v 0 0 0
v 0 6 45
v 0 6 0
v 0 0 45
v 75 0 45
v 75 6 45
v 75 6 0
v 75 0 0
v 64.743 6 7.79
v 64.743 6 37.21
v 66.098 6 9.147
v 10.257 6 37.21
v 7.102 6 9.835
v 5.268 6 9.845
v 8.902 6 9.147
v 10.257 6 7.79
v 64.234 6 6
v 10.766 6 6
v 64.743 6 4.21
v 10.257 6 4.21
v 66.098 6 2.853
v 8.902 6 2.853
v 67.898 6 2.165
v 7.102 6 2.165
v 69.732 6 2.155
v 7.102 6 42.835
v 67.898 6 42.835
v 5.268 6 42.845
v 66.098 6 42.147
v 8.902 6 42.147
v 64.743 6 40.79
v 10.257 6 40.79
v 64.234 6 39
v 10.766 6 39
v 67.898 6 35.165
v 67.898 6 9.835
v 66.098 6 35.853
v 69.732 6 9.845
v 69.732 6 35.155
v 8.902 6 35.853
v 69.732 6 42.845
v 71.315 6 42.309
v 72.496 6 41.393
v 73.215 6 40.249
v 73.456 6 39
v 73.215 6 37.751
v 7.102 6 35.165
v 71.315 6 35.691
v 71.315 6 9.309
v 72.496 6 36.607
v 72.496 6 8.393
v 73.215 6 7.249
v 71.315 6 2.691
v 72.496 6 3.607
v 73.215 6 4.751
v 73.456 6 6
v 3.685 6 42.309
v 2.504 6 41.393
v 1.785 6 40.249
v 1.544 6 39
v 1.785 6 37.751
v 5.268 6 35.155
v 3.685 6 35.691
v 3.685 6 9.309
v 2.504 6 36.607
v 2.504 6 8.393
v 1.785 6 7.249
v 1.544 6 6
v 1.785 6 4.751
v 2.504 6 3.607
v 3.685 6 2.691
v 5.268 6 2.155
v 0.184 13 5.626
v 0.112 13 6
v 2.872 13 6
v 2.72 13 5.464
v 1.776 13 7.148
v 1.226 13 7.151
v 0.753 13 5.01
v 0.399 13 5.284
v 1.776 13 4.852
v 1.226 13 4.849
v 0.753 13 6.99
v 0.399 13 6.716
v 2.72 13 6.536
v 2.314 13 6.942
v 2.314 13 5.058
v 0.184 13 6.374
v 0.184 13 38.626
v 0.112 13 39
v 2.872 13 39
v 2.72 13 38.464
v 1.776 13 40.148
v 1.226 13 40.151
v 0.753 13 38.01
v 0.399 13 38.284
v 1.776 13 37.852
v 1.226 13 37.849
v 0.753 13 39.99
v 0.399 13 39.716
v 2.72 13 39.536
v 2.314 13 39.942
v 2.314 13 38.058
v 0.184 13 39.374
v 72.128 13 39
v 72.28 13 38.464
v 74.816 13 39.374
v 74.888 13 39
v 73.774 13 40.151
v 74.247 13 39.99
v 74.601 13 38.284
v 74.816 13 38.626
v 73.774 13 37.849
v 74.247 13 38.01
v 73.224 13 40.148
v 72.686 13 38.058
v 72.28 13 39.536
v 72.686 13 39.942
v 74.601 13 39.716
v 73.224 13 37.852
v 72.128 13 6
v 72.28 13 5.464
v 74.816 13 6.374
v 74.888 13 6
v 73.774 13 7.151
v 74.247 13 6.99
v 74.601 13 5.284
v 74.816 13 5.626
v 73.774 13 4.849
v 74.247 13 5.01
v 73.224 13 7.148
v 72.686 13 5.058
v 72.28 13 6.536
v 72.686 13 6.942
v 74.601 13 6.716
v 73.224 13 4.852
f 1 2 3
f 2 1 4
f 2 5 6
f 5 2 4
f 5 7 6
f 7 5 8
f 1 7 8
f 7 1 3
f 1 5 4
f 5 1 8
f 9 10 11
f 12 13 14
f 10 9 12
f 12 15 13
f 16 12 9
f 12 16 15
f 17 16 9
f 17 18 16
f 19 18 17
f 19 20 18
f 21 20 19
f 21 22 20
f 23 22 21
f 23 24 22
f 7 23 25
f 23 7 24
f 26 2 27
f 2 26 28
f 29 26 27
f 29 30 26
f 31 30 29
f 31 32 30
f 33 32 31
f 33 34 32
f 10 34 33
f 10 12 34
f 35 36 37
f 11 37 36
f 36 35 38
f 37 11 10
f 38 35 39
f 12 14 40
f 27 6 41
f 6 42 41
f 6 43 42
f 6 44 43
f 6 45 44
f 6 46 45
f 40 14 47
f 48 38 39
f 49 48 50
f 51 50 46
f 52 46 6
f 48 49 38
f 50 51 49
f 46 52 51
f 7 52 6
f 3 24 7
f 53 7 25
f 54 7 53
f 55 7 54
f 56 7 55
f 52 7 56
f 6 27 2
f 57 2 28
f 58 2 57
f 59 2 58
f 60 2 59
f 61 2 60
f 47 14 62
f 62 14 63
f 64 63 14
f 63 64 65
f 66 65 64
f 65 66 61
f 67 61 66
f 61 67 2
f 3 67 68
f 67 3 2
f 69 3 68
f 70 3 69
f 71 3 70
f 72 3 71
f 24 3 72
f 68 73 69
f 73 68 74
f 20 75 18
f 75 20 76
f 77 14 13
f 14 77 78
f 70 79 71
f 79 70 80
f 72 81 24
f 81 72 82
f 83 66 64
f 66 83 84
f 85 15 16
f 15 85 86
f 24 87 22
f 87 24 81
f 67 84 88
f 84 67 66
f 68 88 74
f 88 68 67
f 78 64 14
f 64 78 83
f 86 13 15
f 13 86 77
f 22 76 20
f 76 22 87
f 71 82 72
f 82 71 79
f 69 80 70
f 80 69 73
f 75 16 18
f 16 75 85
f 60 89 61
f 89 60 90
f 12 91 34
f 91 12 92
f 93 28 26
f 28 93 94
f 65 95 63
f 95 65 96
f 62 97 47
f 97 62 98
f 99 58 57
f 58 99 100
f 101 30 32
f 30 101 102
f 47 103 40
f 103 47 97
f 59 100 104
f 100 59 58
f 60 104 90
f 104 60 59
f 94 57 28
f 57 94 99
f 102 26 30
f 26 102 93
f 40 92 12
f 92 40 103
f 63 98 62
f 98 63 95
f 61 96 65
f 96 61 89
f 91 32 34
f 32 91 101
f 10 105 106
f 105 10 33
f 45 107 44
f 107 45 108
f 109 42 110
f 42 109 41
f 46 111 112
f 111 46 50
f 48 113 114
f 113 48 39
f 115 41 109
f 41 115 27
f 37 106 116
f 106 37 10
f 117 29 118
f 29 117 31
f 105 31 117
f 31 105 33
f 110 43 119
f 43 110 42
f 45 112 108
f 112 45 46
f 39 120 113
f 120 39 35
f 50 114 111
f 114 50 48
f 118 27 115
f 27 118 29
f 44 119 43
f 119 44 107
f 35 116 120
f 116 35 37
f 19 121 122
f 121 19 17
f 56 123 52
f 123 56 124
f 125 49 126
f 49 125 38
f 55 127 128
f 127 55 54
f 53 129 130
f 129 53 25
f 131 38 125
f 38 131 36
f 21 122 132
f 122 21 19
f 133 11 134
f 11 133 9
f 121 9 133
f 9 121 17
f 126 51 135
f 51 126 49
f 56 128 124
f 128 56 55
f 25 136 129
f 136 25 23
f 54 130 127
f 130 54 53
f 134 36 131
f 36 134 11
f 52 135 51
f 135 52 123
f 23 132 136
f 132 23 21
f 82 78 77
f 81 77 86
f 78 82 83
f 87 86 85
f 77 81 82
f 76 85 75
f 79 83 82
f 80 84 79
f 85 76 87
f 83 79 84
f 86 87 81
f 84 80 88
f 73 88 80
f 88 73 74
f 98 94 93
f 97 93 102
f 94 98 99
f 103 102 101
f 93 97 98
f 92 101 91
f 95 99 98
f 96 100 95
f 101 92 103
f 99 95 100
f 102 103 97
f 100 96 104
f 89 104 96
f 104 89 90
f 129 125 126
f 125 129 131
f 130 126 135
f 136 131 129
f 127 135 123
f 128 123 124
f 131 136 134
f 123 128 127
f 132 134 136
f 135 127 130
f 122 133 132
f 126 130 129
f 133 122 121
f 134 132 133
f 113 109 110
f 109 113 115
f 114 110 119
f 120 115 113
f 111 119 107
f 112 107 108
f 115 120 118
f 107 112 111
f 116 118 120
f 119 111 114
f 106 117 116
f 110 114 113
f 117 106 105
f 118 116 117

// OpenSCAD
difference () {
    union() {
        // cube([70, 6, 30]);
        cube([75, 6, 45]);
        
        mirror([10, 0, 0])
        translate([-7, 3, 6]) rotate([270, 0, -30])
        cylinder(h=15, r1=5, r2=0);
        
        mirror([10, 0, 0])
        translate([-7, 3, 39]) rotate([270, 0, -30])
        cylinder(h=15, r1=5, r2=0);
        
        mirror([10, 0, 0])
        translate([-68, 3, 39]) rotate([270, 0, 30])
        cylinder(h=15, r1=5, r2=0);
            
        mirror([10, 0, 0])
        translate([-68, 3, 6]) rotate([270, 0, 30])
        cylinder(h=15, r1=5, r2=0);
    };
    translate([-5,13,0]) cube([100, 6, 100]);
}
